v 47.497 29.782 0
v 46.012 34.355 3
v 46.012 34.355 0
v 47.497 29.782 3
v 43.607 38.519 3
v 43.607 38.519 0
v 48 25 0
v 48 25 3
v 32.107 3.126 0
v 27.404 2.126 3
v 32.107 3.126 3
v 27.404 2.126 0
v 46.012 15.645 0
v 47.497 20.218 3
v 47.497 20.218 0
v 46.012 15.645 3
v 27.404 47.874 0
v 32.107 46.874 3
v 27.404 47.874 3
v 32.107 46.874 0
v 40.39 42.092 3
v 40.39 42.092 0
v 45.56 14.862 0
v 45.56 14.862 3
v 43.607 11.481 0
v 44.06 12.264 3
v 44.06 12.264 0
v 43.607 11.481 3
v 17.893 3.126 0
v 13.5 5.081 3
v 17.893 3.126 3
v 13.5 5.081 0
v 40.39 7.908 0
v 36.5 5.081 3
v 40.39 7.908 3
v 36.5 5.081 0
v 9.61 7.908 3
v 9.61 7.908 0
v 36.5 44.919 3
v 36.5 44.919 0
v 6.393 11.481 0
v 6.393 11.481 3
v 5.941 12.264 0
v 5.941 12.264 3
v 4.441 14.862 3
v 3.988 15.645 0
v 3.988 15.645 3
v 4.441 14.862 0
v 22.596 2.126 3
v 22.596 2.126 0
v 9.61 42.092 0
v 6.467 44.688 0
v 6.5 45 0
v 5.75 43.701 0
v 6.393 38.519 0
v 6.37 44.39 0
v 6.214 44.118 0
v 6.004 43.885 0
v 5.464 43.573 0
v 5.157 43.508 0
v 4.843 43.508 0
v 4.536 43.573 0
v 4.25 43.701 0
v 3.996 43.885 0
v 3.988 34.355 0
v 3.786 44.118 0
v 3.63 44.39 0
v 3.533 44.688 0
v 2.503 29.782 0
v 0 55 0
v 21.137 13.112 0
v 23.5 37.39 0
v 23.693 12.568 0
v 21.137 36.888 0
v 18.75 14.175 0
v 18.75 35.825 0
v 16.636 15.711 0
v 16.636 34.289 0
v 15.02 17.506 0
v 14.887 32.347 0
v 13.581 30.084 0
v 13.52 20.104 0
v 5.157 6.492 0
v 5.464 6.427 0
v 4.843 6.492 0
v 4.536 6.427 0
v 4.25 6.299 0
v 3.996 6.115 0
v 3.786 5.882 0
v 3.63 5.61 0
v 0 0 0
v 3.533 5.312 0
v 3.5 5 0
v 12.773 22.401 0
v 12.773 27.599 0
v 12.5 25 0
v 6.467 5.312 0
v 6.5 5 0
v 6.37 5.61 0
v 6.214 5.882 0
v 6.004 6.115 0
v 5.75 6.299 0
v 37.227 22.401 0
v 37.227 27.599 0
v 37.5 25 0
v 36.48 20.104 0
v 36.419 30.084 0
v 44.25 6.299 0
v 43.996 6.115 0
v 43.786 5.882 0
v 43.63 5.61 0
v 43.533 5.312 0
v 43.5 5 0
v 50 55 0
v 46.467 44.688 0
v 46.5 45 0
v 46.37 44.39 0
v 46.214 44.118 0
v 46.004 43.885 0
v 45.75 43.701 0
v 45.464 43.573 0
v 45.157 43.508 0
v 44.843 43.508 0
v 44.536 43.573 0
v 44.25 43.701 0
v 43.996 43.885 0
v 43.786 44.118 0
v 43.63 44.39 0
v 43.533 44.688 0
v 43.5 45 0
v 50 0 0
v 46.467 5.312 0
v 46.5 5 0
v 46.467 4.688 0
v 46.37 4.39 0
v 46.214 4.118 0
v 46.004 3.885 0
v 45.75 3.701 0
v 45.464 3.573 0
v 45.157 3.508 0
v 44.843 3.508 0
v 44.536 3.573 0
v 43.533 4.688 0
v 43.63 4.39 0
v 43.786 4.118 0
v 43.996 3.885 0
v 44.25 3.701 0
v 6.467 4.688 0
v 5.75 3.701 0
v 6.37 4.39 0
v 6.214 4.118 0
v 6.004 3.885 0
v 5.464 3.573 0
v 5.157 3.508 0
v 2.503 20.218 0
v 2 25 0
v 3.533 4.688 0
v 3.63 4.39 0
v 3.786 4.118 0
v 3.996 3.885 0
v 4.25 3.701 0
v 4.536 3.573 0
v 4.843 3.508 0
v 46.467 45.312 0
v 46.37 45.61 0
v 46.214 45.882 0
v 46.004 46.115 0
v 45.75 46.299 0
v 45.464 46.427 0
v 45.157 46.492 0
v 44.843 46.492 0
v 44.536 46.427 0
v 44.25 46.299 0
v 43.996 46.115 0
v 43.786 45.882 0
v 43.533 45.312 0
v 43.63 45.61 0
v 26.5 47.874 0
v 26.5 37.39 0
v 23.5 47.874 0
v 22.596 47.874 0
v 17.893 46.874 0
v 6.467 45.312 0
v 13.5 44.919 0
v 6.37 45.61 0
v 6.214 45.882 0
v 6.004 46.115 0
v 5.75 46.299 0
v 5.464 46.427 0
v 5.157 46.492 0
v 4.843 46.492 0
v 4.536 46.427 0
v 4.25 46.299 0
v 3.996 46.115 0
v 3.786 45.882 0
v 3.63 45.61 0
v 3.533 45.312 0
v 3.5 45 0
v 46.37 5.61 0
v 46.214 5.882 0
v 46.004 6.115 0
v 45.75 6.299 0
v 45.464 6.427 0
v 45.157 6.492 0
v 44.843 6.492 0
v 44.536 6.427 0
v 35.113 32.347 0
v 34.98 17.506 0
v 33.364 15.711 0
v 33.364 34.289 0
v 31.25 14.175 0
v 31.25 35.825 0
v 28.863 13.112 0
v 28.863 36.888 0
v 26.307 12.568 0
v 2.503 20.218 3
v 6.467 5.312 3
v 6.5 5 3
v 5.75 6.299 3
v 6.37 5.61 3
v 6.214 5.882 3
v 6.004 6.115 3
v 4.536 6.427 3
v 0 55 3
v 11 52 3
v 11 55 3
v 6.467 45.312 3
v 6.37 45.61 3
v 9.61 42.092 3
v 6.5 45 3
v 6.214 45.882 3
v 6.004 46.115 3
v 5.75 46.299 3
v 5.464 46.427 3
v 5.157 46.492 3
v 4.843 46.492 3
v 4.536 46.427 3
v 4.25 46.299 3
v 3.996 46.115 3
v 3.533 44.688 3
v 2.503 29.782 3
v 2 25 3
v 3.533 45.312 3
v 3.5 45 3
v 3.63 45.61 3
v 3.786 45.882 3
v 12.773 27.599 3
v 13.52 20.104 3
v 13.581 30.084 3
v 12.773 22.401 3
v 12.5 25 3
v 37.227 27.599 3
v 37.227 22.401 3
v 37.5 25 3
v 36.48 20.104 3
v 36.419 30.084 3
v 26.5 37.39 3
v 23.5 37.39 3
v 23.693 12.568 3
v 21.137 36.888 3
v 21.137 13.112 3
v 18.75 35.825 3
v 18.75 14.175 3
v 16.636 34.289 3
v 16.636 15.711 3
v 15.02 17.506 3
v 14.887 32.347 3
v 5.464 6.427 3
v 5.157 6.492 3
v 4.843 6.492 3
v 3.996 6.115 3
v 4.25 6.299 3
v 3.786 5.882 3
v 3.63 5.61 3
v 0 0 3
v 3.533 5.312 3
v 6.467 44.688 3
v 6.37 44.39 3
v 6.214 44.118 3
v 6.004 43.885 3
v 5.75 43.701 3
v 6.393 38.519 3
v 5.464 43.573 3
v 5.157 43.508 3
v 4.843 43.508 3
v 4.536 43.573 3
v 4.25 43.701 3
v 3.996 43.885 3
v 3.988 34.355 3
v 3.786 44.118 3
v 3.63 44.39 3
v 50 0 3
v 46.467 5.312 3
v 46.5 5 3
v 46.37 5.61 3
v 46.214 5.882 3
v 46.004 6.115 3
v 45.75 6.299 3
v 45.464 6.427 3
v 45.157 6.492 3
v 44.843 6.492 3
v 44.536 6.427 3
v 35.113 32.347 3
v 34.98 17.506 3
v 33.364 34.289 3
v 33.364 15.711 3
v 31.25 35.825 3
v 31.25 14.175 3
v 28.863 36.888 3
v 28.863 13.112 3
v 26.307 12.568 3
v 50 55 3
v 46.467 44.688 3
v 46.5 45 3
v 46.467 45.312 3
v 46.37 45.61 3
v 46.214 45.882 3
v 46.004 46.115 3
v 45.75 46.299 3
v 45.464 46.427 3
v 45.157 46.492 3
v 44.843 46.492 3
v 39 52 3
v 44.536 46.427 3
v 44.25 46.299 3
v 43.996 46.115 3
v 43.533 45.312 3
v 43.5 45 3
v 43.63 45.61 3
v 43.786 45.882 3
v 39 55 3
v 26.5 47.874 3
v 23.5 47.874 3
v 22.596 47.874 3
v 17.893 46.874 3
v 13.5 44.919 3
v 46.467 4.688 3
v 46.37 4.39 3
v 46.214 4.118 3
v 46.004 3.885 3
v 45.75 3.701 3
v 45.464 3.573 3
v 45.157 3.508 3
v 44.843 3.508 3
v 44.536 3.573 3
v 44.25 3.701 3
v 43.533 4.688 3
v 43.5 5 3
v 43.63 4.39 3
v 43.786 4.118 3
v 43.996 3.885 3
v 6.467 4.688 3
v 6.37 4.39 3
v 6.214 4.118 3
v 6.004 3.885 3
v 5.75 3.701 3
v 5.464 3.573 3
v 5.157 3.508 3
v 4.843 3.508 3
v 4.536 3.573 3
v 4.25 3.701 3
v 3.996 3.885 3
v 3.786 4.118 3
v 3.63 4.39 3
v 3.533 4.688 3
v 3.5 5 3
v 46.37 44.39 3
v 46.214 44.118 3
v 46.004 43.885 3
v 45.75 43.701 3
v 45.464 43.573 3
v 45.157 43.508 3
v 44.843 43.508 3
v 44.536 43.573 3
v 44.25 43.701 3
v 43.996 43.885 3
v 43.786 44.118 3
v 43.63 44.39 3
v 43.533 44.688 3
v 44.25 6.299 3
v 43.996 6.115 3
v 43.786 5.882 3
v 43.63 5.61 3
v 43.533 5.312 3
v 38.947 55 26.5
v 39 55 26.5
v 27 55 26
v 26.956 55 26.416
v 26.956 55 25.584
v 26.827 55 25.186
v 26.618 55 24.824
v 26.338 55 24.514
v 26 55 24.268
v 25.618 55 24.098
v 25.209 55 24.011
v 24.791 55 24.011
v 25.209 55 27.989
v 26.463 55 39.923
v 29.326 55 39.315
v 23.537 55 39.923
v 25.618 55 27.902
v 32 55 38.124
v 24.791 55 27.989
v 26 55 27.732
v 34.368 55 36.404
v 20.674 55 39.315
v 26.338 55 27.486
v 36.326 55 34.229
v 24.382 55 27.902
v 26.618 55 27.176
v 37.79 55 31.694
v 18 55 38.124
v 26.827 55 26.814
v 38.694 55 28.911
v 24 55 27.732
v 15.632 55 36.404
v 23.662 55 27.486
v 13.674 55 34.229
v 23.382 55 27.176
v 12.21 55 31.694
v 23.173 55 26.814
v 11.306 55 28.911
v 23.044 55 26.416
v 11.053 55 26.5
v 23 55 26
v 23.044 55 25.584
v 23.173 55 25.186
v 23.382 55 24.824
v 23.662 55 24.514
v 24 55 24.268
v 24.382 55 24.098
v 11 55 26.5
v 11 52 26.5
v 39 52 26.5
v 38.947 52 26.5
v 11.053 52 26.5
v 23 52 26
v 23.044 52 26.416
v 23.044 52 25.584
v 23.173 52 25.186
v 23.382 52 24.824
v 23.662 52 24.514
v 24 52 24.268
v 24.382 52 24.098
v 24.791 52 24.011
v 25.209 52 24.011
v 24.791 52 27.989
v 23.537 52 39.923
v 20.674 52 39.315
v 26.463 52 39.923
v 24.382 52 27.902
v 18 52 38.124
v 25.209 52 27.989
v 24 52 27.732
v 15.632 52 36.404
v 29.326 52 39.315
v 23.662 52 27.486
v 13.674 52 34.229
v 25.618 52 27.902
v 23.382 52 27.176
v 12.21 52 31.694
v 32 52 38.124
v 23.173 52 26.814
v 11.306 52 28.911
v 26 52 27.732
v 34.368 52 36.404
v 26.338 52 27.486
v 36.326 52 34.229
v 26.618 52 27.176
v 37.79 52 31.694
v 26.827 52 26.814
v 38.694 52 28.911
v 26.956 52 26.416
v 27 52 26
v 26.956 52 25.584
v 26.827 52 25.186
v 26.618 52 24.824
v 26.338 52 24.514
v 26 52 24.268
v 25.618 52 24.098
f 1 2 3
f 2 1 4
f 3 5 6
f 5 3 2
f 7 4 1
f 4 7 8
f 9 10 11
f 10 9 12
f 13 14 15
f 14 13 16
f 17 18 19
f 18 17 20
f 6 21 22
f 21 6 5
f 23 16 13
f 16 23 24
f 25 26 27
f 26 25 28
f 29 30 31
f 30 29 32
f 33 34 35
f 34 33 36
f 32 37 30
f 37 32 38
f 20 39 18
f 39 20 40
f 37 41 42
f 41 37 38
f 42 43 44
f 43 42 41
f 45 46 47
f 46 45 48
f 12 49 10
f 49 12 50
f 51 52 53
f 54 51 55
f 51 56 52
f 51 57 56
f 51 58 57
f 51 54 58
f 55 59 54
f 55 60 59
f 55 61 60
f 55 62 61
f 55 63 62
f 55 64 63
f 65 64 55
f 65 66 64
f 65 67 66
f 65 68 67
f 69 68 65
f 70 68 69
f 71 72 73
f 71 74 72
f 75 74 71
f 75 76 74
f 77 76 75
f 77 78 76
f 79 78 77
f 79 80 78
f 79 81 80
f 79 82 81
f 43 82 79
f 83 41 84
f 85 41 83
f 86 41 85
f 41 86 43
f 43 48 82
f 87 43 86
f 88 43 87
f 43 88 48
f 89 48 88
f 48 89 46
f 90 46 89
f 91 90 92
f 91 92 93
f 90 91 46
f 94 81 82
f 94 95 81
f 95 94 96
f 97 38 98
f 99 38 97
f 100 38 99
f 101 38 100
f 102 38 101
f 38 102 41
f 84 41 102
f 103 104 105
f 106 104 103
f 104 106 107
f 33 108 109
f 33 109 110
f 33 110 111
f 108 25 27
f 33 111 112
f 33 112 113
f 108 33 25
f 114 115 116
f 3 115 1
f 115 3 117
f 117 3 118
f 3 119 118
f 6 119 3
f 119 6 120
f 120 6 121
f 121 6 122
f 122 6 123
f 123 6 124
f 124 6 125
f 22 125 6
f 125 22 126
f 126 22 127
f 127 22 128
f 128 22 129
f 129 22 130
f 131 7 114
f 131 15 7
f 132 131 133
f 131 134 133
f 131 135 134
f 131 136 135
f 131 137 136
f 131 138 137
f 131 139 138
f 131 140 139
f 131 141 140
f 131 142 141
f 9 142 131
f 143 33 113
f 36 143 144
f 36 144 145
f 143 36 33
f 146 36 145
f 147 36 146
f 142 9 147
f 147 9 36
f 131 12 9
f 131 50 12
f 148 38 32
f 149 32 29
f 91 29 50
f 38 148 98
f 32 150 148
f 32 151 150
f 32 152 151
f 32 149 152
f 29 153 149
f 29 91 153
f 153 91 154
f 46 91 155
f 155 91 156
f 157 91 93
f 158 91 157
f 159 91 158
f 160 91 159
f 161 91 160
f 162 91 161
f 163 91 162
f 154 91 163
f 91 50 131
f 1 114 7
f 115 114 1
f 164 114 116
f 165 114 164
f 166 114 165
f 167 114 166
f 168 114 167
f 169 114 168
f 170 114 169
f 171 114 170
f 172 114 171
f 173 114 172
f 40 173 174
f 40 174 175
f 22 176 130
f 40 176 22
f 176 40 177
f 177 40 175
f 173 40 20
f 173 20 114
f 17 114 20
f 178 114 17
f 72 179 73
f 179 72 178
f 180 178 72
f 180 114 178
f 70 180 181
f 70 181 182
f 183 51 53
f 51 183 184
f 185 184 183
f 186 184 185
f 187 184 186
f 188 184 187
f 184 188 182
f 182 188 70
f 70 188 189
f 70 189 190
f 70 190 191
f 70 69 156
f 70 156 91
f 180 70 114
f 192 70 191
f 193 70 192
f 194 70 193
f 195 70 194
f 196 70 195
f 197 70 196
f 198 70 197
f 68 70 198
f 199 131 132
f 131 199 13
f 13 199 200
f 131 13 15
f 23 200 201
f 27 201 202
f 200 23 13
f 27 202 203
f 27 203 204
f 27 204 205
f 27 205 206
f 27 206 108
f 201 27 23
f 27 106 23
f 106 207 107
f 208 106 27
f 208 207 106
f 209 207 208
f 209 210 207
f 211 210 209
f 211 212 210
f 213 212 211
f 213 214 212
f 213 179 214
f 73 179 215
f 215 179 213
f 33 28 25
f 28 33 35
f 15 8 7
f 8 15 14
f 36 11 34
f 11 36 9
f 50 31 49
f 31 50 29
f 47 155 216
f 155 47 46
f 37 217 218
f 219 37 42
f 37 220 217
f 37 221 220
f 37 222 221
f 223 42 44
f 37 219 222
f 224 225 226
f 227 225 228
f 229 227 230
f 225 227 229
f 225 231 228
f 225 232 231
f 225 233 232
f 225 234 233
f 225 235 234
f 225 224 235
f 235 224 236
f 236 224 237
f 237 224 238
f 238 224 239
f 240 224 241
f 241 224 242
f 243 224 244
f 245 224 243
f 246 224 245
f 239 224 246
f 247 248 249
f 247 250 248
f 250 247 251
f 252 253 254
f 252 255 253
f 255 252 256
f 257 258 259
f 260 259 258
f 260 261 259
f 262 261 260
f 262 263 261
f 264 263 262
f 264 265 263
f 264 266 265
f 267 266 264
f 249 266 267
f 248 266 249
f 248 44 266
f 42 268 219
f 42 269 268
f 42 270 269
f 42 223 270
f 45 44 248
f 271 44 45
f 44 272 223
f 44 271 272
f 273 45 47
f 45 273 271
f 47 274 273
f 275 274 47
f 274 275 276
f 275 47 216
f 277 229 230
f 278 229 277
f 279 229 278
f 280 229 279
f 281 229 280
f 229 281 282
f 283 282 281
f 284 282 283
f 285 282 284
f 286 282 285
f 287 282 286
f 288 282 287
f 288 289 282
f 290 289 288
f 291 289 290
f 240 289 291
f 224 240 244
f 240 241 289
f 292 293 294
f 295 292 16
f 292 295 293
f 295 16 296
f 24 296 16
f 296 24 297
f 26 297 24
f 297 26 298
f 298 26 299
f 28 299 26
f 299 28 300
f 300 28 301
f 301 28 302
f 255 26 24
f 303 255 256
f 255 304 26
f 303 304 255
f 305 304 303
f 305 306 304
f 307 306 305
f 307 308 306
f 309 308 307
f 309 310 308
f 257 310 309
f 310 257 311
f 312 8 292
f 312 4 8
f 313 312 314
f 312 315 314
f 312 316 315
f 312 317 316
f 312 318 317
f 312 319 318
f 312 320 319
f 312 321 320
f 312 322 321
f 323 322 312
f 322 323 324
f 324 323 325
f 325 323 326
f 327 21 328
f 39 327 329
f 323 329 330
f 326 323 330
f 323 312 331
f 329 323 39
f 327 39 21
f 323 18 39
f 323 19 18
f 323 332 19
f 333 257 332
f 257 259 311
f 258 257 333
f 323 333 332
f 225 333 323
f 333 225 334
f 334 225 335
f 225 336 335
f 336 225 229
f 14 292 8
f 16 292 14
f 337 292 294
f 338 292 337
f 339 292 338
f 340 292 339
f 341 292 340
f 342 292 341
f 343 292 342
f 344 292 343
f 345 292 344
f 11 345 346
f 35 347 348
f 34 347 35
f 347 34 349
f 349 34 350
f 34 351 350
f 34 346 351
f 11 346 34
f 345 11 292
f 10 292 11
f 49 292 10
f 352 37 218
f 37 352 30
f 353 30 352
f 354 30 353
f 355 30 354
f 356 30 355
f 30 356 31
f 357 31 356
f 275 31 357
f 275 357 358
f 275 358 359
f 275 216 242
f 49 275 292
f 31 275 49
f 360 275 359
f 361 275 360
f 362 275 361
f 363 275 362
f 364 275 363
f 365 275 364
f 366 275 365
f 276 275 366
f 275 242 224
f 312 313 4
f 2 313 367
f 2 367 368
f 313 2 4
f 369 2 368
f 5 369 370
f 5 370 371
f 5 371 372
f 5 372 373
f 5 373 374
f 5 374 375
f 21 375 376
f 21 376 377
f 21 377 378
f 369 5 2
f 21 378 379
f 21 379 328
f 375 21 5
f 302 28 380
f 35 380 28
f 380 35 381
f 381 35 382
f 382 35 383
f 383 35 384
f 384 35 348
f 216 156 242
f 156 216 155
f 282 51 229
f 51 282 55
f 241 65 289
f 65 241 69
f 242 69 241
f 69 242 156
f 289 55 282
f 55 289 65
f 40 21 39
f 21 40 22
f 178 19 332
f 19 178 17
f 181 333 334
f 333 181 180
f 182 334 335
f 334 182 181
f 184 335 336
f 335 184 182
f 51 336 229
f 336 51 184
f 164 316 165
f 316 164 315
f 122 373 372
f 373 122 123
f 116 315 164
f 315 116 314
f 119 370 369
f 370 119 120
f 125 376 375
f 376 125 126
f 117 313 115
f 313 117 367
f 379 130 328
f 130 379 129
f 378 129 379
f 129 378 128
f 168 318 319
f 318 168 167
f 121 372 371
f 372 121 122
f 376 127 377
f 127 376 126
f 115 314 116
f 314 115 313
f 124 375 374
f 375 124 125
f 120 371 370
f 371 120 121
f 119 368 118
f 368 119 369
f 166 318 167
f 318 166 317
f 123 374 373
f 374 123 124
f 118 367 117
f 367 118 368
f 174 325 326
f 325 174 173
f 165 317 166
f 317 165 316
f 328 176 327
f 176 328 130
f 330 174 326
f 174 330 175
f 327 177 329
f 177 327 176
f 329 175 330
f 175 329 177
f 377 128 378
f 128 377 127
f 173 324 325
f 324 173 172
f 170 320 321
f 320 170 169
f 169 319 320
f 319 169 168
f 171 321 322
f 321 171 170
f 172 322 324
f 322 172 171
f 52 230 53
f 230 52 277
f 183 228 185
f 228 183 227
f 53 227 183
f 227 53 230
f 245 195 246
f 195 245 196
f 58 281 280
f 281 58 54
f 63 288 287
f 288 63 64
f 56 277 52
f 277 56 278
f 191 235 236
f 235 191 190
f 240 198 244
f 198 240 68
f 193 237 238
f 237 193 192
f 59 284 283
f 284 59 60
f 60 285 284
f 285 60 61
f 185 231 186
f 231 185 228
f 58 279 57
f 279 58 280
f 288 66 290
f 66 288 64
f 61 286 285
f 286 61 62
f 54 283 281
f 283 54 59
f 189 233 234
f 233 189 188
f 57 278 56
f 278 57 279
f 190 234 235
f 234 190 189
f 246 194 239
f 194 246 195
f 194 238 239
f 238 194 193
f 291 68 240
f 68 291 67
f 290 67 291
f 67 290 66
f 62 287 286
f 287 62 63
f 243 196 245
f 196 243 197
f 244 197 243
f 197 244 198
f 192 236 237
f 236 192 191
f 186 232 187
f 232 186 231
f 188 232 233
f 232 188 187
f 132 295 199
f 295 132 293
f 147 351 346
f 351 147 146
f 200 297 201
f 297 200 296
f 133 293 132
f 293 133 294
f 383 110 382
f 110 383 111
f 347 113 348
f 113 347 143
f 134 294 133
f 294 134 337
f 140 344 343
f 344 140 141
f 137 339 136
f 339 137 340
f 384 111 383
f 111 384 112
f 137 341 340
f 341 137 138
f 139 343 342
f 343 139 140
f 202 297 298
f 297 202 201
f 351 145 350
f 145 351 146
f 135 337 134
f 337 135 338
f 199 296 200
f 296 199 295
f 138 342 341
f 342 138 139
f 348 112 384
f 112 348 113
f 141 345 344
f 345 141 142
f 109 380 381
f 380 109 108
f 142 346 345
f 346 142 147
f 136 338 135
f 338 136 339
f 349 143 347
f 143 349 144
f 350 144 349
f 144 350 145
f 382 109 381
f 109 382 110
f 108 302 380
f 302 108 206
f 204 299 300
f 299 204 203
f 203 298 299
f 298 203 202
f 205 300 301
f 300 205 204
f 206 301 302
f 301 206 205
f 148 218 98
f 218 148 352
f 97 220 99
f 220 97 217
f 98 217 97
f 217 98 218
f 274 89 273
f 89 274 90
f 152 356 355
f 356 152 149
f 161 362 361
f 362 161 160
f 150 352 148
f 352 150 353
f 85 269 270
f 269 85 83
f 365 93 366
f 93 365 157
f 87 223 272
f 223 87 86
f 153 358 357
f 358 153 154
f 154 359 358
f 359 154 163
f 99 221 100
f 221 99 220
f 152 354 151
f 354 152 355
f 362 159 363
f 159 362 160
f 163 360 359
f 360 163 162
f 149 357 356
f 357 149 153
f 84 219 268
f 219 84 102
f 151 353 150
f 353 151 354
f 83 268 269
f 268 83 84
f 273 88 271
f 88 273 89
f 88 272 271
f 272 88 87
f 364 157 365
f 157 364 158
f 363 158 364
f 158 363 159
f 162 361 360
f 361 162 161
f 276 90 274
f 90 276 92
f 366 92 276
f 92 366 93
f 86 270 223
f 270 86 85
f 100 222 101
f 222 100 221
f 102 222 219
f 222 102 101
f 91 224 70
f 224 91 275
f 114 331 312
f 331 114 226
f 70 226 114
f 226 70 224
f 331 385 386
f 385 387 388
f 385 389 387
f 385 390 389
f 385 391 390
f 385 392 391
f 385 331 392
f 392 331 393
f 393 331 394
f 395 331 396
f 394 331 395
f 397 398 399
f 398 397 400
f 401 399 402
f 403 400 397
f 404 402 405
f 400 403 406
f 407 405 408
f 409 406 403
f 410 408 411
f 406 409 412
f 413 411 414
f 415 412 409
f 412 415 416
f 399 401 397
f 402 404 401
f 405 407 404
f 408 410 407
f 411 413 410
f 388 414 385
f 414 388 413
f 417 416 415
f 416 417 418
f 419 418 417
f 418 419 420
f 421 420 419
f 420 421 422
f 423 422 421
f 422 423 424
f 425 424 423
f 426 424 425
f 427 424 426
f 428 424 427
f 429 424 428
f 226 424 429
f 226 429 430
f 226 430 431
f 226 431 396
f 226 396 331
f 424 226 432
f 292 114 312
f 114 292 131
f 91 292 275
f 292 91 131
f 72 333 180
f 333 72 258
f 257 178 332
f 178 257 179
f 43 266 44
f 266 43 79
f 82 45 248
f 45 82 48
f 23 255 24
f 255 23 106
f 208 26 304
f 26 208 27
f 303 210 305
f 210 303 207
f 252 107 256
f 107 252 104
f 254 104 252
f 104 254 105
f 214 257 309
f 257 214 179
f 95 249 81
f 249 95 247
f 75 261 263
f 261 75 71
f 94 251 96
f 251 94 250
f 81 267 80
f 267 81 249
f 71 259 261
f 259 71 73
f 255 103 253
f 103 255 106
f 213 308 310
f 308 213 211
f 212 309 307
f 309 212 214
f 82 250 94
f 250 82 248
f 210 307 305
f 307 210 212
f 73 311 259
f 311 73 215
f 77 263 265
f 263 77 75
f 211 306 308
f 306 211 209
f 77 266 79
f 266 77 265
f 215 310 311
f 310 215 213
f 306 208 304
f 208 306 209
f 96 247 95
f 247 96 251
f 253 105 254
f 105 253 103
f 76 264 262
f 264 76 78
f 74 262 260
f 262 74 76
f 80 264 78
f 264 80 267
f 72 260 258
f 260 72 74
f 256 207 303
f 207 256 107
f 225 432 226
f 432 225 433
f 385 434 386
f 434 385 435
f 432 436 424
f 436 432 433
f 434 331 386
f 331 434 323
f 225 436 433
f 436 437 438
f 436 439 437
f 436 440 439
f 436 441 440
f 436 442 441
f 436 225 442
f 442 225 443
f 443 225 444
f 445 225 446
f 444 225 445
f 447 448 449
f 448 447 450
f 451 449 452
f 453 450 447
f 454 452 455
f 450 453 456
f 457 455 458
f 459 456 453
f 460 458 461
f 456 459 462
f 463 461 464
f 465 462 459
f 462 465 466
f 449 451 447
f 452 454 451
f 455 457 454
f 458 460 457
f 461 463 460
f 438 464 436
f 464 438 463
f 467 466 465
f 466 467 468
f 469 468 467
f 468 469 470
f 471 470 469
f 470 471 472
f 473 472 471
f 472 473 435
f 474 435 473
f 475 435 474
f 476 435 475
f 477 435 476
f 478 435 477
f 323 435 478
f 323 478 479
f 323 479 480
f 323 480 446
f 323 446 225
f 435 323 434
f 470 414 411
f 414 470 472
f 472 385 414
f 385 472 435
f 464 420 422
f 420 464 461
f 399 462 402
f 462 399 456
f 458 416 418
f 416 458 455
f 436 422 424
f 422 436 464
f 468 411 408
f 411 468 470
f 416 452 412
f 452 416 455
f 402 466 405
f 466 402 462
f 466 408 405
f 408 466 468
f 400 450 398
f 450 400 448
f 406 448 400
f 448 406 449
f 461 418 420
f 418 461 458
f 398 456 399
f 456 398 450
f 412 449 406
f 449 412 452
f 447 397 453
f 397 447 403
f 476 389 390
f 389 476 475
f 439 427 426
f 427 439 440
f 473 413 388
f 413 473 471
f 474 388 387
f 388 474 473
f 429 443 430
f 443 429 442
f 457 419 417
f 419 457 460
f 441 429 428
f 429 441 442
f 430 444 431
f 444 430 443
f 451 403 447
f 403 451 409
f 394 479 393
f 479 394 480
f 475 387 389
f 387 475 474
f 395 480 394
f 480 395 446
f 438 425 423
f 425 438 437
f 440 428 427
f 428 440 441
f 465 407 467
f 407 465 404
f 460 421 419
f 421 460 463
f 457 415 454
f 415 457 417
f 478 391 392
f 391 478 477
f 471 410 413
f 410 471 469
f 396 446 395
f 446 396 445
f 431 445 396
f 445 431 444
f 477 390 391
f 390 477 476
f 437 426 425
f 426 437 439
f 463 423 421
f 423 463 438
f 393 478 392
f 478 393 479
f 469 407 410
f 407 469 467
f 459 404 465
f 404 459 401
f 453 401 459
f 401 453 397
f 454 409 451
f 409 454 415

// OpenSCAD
fn = 30;
base_thickness = 3;
bolt_d = 2.9;

difference() {
    union() {
        difference() {
            linear_extrude(base_thickness) square(size=[50, 55]);
            
            translate([25,25]) {
                linear_extrude(base_thickness) circle(d=46, $fn=fn);

                translate([20, 20]) linear_extrude(base_thickness) circle(d=3, $fn=fn);
                translate([-20, 20]) linear_extrude(base_thickness) circle(d=3, $fn=fn);
                translate([20, -20]) linear_extrude(base_thickness) circle(d=3, $fn=fn);
                translate([-20, -20]) linear_extrude(base_thickness) circle(d=3, $fn=fn);
            }
        }
        translate([25,25]) {
            linear_extrude(base_thickness) circle(d=25, $fn=fn);
            
            for (i = [0:120:360]){
                rotate(i,0,0) translate([0,18]) linear_extrude(base_thickness) square(size=[3, 15], center=true);
            }
            
        }
        
        translate([25-14,55-base_thickness]) linear_extrude((50+base_thickness)/2) square(size=[28, base_thickness]);
            translate([25,55, 23+base_thickness]) rotate([90,0,0]) {
            linear_extrude(base_thickness) circle(d=28, $fn=fn);
        }
    }
    
    translate([25,55, 23+base_thickness]) rotate([90,0,0]) linear_extrude(base_thickness) circle(d=4, $fn=fn);
}
